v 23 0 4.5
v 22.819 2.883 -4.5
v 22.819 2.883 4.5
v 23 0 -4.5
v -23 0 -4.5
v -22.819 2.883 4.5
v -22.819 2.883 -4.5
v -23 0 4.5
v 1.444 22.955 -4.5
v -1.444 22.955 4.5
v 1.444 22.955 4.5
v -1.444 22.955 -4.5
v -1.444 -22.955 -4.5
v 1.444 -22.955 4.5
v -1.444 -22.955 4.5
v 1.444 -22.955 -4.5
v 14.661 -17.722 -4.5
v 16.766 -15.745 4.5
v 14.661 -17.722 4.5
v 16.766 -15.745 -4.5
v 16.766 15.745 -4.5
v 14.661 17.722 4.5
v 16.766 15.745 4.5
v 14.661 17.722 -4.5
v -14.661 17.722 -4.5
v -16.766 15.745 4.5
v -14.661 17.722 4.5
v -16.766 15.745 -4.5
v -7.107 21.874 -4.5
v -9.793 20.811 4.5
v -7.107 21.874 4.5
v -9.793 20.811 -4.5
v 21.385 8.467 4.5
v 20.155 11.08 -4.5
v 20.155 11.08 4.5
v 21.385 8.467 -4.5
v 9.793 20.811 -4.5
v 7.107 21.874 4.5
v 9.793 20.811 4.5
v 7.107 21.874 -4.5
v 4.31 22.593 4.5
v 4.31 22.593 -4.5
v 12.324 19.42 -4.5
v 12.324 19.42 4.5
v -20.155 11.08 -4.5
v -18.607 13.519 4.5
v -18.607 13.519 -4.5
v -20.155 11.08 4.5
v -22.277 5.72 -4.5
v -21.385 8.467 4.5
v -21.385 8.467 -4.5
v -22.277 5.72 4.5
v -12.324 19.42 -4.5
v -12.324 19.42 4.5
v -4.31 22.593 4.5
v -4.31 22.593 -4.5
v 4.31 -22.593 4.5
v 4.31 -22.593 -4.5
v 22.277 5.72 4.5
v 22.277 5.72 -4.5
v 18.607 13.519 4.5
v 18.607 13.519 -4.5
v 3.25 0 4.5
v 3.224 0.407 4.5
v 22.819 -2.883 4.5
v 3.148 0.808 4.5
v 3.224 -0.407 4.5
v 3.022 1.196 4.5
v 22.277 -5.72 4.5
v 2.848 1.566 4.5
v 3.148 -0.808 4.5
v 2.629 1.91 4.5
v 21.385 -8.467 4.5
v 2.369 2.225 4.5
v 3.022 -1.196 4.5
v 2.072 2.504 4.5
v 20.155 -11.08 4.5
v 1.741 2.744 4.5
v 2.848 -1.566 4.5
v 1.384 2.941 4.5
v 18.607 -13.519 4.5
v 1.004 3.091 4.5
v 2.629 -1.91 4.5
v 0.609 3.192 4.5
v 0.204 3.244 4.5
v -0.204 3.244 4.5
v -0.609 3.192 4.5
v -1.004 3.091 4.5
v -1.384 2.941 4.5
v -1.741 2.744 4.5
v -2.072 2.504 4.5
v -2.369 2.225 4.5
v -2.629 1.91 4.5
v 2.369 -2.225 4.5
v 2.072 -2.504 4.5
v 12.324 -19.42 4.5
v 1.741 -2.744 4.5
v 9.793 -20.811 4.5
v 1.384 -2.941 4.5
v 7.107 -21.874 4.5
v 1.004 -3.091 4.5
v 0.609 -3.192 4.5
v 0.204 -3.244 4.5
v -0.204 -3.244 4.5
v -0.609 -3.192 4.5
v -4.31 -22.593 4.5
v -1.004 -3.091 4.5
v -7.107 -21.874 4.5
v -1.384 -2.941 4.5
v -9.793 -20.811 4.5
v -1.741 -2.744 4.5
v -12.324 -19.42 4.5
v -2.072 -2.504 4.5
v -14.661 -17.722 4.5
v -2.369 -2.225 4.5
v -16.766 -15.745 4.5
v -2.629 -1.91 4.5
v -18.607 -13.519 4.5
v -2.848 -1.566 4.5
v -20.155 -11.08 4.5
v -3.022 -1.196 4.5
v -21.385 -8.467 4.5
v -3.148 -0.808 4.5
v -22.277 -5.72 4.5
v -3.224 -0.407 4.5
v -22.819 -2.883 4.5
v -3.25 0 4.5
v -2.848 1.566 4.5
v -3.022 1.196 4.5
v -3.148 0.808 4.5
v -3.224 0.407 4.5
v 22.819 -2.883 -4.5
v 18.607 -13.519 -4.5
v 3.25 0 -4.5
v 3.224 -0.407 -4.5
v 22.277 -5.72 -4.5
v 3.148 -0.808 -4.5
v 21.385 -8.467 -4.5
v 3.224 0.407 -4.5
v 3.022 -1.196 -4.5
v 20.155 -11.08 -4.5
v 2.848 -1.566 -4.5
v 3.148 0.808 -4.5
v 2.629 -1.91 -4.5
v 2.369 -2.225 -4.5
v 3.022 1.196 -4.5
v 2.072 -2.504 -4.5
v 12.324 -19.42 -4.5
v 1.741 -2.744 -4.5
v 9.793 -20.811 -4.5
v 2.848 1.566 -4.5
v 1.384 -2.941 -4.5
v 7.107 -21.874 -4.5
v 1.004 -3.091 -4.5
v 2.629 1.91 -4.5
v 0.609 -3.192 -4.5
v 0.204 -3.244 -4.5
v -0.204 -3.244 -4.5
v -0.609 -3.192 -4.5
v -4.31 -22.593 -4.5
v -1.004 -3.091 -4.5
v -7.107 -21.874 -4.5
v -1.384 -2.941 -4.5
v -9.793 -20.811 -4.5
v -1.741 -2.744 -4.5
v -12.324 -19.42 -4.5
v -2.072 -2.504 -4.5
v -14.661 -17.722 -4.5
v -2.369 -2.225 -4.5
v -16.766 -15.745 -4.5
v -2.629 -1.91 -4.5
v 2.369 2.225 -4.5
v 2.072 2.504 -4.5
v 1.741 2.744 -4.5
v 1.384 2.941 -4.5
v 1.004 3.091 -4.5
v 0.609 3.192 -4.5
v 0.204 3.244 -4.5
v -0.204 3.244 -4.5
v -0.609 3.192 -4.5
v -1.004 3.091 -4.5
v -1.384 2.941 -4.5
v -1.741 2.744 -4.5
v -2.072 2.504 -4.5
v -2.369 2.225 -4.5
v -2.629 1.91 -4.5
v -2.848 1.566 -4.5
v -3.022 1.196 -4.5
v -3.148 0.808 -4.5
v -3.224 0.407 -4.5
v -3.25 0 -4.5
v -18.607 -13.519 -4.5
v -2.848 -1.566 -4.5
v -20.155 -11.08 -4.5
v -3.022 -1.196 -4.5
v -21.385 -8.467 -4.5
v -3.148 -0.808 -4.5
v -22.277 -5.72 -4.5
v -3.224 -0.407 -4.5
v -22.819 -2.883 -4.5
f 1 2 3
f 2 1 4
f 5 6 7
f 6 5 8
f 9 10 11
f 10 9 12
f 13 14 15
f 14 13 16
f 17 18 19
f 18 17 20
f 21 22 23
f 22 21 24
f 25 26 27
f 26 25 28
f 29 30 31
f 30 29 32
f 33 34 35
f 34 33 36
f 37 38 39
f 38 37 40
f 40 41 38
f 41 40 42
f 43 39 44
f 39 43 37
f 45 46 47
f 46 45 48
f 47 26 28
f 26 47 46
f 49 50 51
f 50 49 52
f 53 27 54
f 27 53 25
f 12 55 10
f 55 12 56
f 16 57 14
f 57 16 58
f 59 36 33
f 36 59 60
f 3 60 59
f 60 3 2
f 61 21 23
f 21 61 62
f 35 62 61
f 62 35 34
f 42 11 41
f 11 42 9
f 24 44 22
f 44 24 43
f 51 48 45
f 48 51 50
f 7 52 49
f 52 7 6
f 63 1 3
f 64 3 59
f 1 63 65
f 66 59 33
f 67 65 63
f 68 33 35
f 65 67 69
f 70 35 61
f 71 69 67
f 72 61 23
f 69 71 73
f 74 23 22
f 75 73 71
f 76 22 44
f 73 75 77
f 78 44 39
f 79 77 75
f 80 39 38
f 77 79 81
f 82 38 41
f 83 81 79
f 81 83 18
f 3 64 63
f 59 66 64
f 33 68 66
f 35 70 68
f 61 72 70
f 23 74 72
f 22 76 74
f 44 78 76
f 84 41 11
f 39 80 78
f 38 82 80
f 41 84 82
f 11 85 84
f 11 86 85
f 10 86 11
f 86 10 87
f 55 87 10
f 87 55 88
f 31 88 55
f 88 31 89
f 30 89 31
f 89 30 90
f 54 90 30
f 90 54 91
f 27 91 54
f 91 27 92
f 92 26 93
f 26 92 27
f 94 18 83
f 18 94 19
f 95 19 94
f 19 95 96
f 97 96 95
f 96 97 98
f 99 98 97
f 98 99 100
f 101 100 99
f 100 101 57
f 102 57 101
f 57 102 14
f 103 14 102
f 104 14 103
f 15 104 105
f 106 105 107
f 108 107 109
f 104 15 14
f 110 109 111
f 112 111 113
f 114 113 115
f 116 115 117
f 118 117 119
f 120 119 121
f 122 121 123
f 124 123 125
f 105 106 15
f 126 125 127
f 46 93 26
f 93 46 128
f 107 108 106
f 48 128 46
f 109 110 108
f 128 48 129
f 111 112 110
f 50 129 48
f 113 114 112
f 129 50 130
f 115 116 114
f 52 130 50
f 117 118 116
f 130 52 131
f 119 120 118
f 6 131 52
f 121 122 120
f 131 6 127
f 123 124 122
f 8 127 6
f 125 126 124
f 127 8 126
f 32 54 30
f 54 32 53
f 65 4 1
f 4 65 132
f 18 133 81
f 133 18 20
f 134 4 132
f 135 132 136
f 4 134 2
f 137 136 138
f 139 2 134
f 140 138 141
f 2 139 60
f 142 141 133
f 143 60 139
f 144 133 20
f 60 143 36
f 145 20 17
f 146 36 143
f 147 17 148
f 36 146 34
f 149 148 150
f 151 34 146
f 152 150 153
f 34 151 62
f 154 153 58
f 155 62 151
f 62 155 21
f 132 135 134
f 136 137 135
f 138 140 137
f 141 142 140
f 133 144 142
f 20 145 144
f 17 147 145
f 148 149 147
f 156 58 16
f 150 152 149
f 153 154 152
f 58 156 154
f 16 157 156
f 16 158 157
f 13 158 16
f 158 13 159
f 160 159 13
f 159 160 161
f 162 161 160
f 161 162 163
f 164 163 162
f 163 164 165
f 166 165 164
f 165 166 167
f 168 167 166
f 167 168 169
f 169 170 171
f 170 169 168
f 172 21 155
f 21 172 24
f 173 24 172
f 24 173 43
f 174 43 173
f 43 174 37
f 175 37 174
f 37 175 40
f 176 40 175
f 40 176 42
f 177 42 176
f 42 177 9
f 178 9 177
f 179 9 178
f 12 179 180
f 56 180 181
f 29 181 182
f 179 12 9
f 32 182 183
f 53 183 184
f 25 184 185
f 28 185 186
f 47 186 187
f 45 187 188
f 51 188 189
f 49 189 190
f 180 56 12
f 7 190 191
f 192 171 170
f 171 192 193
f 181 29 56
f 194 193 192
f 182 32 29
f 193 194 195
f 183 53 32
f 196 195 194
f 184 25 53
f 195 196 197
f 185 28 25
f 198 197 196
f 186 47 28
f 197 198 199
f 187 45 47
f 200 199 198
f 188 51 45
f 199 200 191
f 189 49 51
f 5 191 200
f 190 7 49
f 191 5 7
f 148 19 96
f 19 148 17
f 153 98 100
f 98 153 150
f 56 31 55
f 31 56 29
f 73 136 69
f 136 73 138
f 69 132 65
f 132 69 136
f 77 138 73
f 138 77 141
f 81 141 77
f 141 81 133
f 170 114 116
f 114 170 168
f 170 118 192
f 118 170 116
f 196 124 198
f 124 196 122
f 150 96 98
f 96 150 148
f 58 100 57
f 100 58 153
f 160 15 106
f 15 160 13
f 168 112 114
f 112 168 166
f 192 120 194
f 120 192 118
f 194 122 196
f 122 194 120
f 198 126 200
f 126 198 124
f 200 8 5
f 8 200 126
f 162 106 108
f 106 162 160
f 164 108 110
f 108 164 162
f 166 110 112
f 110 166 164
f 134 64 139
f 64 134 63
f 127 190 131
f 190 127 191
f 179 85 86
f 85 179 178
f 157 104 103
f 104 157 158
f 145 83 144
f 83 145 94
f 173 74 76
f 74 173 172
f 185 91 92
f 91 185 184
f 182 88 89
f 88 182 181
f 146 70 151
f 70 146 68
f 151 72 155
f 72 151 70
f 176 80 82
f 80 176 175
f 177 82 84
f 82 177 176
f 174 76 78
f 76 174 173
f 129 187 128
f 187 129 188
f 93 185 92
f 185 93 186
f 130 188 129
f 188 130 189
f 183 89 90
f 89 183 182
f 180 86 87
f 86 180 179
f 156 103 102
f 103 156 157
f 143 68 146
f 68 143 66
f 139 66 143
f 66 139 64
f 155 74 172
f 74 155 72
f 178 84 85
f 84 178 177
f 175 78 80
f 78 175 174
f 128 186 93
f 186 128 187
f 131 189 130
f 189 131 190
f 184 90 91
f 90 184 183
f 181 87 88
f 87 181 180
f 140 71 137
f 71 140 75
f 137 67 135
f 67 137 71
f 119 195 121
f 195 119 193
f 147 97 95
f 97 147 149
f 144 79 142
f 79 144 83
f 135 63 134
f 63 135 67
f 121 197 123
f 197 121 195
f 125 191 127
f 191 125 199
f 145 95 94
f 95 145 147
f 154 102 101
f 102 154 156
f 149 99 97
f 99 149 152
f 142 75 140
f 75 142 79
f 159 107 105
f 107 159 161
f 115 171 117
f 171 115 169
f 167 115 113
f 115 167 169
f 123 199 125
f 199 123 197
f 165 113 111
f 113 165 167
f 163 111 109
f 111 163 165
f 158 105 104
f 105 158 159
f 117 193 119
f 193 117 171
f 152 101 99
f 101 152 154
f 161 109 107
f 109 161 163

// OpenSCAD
$fn = 50;


difference() {
	union() {
		translate(v = [0, 0, -4.5000000000]) {
			cylinder(h = 9, r = 23.0000000000);
		}
	}
	union() {
		translate(v = [0, 0, -100.0000000000]) {
			cylinder(h = 200, r = 3.2500000000);
		}
	}
}
